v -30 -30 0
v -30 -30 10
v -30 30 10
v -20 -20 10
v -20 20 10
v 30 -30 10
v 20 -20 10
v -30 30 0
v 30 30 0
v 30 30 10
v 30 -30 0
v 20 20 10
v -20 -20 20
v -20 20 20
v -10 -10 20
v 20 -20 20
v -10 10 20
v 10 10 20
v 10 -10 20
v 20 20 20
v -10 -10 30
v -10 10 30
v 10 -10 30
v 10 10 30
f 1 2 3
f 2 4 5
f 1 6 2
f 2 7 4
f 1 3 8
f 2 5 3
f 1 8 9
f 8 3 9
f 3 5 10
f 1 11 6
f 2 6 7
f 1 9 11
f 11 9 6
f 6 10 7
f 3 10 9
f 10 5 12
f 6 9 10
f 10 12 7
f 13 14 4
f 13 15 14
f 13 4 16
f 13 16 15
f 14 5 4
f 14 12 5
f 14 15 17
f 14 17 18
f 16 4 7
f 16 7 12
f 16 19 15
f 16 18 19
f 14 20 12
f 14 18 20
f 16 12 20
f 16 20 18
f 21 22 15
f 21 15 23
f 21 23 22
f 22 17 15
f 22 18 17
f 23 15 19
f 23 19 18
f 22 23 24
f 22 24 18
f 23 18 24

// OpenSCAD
// 3段の階段状ピラミッド

module pyramid() {
    // 1段目: 60mm × 60mm × 10mm (底辺)
    translate([0, 0, 0])
        cube([60, 60, 10], center = true);

    // 2段目: 40mm × 40mm × 10mm
    translate([0, 0, 10])
        cube([40, 40, 10], center = true);

    // 3段目: 20mm × 20mm × 10mm (頂上)
    translate([0, 0, 20])
        cube([20, 20, 10], center = true);
}

// 底面がZ=0になるように配置
translate([0, 0, 5])
    pyramid();
